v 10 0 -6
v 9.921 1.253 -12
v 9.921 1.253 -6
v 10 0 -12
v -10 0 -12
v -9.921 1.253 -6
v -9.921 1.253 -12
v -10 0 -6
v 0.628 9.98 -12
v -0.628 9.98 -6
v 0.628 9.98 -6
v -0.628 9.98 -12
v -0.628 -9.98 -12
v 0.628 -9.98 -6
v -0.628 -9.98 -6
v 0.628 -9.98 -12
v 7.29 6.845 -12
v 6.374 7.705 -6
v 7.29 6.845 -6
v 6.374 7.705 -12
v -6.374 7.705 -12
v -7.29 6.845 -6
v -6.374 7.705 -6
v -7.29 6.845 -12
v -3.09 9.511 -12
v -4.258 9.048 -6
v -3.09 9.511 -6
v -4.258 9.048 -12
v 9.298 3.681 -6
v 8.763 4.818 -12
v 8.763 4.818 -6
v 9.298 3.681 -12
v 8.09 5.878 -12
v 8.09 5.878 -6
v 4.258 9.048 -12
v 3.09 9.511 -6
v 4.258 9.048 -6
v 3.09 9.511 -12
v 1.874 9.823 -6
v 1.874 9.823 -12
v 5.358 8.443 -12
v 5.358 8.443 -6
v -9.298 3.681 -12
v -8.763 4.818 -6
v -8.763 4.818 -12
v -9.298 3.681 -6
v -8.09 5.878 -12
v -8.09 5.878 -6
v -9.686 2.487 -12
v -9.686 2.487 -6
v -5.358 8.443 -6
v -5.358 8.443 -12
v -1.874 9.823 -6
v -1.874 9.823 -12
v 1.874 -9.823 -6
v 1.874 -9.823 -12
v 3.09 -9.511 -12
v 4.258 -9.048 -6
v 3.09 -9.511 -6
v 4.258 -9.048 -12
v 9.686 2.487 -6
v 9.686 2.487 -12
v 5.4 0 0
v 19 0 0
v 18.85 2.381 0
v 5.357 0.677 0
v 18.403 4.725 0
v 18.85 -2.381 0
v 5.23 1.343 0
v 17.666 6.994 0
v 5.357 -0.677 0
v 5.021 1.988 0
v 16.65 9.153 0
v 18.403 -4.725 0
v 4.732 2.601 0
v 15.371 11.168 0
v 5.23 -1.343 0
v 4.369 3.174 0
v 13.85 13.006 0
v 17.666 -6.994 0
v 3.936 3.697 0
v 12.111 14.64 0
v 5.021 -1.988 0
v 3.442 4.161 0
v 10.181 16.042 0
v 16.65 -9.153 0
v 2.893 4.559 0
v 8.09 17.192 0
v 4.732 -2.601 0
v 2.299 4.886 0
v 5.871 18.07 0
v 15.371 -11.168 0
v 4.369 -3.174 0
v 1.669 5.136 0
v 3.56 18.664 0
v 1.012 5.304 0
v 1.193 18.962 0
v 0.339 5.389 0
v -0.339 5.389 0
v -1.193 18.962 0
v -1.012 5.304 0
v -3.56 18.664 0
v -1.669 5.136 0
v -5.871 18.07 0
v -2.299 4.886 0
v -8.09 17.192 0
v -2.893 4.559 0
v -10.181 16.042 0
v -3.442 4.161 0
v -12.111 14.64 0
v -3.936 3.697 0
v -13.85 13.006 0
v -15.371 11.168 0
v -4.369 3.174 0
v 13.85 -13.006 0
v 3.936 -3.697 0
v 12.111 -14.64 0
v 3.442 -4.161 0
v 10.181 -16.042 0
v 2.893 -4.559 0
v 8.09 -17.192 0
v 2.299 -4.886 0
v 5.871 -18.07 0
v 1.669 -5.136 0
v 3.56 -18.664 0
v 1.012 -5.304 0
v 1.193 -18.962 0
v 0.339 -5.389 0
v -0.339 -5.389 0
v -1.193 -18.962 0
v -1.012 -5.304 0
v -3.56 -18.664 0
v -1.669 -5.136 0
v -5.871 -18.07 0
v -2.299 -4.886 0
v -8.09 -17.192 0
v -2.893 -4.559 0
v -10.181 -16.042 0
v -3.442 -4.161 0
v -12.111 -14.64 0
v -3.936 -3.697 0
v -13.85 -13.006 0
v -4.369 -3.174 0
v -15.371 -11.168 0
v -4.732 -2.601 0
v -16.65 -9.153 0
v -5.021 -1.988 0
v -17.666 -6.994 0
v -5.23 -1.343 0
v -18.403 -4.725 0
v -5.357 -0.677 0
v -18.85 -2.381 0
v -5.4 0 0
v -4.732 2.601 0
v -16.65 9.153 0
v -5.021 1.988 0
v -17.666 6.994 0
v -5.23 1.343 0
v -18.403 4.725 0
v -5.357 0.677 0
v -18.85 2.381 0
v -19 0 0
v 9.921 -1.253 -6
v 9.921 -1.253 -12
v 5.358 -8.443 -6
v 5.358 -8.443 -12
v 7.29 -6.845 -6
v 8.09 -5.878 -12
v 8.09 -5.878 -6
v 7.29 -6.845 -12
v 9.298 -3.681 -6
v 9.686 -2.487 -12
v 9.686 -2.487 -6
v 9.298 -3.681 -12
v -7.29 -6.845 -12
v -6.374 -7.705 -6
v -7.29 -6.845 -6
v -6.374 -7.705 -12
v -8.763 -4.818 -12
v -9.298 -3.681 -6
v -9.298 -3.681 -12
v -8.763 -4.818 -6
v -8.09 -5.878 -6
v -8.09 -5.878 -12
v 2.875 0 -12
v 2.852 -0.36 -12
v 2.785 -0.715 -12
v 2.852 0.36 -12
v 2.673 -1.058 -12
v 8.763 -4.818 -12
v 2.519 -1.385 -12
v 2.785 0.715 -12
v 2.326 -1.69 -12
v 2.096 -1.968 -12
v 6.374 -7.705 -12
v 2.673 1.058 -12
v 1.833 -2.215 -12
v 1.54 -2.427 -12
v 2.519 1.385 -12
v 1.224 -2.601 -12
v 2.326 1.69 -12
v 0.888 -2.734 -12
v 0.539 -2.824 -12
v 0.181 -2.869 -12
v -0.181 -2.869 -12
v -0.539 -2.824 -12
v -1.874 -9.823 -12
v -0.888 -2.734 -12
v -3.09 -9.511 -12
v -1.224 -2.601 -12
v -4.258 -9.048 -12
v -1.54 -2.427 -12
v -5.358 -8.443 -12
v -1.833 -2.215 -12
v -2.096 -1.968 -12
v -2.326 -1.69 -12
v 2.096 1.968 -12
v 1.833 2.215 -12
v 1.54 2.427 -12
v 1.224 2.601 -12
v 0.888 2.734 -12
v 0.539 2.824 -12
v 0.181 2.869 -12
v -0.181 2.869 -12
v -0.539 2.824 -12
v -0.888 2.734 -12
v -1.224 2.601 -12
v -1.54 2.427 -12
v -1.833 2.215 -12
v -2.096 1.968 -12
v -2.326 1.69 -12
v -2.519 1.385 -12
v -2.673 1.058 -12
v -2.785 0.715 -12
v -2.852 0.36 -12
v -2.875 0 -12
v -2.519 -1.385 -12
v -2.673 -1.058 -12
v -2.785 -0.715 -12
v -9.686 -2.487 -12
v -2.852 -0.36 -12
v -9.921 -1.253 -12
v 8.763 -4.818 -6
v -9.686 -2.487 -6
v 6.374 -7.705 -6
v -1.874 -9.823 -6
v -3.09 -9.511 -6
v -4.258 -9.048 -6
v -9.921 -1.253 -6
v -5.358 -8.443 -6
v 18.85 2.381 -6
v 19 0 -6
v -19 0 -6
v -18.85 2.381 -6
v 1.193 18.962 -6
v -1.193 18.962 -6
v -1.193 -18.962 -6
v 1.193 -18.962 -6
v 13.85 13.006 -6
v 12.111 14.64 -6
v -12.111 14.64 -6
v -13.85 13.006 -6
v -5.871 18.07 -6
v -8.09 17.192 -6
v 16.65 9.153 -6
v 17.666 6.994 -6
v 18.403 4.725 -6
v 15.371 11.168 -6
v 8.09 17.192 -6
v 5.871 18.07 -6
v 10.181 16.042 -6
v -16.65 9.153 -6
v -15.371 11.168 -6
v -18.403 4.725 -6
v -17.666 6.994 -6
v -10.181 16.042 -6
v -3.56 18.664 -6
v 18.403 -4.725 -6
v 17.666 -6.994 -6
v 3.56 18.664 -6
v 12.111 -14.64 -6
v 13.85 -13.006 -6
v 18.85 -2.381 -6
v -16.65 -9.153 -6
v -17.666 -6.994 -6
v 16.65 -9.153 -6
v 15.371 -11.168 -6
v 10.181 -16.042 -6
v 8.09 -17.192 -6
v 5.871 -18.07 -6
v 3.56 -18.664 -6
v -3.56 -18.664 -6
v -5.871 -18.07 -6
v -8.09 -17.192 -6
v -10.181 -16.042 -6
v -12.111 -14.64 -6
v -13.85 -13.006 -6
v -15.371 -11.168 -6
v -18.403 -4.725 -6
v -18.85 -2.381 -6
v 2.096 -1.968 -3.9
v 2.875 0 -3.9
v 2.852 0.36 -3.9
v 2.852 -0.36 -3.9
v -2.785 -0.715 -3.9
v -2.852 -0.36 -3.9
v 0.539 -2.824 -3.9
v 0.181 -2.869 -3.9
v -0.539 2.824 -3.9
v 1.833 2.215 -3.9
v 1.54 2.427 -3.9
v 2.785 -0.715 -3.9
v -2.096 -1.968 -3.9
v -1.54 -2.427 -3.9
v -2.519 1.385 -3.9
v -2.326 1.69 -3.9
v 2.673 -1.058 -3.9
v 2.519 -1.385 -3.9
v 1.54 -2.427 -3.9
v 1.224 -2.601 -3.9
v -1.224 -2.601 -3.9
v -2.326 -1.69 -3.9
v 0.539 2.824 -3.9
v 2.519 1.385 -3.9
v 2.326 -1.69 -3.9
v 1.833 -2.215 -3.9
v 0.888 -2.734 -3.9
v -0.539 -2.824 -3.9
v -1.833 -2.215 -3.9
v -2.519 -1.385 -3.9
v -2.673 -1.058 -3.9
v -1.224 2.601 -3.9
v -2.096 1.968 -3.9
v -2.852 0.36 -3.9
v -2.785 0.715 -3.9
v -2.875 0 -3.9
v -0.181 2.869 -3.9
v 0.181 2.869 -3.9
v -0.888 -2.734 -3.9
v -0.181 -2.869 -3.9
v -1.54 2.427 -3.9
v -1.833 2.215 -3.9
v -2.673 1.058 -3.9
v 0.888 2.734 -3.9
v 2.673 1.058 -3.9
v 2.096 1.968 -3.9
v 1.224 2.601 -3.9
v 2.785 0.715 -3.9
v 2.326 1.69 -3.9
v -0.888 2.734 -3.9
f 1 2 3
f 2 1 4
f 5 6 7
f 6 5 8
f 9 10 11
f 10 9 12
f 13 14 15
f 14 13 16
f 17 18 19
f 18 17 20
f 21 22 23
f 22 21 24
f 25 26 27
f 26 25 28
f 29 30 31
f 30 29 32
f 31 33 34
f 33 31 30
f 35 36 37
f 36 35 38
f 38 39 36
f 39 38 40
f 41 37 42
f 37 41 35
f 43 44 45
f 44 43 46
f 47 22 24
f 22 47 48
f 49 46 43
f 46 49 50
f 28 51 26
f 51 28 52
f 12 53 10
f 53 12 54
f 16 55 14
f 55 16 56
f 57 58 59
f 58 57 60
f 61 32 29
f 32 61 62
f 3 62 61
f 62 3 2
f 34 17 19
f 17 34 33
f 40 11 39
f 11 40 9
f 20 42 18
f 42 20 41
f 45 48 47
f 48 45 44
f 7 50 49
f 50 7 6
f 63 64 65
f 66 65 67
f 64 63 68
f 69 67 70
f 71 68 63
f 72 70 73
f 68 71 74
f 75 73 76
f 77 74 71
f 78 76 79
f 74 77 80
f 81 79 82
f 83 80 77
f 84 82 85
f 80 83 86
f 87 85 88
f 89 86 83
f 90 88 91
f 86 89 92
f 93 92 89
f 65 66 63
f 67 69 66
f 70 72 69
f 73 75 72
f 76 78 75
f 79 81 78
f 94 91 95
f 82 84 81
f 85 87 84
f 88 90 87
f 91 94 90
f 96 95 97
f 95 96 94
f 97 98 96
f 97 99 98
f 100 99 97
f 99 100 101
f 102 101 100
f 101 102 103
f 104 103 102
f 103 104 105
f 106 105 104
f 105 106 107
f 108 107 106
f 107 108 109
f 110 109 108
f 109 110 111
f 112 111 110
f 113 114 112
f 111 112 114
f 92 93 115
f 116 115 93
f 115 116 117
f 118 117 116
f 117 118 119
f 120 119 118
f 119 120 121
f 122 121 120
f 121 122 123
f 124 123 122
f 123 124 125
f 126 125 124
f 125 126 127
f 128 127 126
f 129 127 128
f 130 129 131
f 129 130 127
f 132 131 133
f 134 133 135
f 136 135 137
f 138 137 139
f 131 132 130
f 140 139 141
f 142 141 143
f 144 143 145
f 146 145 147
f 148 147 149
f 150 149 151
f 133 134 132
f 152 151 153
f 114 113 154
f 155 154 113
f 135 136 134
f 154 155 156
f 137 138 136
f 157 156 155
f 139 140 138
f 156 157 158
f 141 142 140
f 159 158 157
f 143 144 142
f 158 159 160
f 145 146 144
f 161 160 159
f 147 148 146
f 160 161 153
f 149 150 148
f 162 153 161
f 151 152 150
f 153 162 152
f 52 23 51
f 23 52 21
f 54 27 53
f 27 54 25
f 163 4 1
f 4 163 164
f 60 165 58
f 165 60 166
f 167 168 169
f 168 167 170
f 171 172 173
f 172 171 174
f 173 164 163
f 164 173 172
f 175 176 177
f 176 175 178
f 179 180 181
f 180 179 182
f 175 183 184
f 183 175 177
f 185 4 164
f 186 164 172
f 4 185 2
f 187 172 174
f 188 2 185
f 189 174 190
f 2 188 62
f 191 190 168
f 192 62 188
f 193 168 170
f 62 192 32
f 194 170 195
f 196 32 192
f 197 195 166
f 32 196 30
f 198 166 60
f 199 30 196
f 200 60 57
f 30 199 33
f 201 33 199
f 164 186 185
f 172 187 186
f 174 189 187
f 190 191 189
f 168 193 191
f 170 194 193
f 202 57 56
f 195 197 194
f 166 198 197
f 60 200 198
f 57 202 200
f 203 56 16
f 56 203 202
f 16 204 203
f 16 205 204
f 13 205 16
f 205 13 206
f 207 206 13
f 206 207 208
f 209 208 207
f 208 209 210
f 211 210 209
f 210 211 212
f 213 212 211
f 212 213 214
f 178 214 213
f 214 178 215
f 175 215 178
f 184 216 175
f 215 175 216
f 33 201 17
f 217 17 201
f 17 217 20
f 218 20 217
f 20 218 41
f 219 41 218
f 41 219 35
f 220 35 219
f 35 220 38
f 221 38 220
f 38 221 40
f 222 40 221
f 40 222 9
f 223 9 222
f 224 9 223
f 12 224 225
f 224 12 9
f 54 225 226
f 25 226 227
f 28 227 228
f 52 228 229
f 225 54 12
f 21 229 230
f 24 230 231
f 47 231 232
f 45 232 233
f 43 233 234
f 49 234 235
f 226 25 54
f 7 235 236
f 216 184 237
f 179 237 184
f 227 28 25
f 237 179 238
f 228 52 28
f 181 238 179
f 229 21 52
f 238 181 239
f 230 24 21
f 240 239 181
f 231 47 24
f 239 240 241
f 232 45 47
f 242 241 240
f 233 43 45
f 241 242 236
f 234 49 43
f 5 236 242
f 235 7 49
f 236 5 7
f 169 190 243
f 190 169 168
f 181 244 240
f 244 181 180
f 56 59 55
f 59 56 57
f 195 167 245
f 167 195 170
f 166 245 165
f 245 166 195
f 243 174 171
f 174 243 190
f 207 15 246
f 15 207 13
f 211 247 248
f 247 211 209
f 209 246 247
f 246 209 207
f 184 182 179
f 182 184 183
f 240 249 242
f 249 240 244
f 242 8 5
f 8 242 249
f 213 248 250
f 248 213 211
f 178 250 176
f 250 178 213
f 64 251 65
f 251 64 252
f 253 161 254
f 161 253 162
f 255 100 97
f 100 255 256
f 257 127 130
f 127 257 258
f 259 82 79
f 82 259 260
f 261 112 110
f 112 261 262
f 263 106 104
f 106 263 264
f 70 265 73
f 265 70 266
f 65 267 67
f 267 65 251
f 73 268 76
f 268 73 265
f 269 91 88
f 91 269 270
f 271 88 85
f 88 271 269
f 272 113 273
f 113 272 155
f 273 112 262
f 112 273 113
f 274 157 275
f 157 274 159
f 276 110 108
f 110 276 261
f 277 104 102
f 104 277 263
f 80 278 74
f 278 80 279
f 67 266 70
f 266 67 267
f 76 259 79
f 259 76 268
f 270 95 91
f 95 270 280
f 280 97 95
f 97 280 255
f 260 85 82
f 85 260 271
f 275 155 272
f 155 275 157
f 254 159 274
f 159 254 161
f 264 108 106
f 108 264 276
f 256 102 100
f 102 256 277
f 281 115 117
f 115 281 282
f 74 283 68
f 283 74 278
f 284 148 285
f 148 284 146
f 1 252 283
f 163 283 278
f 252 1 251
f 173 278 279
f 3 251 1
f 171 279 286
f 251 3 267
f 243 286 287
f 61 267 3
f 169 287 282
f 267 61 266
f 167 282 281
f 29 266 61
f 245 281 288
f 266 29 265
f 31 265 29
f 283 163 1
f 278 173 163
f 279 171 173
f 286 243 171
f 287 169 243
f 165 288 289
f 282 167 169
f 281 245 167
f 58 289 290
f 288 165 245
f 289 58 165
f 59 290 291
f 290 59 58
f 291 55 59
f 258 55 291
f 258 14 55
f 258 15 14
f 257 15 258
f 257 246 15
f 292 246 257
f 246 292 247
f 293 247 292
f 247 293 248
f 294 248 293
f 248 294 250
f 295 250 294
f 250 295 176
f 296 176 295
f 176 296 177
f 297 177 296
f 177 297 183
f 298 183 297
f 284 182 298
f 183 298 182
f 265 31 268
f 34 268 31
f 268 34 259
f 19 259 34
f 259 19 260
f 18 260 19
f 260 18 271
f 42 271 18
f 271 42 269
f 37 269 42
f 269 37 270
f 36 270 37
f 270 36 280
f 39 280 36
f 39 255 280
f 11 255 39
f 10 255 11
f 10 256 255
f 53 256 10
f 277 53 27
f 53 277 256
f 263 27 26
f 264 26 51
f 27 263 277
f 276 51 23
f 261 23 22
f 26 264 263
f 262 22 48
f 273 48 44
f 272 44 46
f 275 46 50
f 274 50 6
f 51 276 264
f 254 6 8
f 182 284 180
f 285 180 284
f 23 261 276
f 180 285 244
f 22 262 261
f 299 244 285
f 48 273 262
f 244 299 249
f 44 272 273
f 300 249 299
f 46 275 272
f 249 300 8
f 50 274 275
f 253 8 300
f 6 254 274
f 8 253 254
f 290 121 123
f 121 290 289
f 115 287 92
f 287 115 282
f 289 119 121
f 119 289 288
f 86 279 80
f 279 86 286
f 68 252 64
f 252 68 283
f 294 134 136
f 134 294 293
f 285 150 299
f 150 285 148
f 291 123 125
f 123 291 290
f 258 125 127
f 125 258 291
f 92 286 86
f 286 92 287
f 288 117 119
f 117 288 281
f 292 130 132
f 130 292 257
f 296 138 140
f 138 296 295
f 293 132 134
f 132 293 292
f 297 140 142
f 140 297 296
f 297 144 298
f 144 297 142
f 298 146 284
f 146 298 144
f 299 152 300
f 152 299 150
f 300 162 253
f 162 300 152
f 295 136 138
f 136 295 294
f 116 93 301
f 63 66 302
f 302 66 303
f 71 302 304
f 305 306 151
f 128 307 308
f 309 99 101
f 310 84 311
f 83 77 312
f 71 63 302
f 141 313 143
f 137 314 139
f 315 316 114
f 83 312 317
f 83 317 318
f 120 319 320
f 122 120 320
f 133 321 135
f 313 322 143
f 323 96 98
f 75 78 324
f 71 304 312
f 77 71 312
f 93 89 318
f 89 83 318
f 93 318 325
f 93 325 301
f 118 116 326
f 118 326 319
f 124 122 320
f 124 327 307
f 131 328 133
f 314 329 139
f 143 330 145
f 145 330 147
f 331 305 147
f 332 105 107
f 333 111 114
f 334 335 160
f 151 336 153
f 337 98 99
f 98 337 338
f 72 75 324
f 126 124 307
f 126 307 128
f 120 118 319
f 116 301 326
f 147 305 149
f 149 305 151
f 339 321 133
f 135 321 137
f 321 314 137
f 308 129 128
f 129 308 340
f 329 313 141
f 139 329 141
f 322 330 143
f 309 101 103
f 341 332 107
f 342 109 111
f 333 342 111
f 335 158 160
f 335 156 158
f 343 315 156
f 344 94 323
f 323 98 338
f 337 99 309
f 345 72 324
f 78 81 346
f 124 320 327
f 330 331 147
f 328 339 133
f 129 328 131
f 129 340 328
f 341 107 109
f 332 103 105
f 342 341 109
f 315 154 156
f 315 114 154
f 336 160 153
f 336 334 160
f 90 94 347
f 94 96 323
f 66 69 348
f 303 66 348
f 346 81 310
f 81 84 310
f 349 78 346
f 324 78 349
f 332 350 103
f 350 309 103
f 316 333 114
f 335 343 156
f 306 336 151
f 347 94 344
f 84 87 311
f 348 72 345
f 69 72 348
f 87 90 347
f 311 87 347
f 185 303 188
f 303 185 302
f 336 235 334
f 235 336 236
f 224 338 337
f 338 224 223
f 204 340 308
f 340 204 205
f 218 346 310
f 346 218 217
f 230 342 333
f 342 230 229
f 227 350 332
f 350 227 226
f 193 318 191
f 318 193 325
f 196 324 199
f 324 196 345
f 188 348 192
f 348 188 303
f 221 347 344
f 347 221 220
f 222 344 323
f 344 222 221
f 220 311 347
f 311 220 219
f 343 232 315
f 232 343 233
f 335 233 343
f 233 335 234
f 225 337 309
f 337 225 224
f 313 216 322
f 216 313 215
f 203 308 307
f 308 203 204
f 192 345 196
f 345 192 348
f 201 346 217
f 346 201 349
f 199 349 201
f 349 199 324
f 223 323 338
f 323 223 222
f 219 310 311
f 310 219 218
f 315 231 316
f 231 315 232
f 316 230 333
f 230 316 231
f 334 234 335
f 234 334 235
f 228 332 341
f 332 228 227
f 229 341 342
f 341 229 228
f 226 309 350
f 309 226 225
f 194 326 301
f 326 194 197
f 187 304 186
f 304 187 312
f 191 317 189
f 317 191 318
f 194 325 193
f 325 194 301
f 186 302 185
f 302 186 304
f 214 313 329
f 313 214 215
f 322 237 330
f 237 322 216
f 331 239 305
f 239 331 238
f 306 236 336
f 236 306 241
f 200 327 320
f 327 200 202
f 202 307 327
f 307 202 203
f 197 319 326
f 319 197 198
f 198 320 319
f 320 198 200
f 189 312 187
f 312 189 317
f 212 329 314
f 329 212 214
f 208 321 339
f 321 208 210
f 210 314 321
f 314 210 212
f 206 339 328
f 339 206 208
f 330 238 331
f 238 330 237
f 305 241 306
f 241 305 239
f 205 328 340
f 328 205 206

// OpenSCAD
$fn = 50;


difference() {
	union() {
		translate(v = [0, 0, -12.0000000000]) {
			cylinder(h = 12, r = 10.0000000000);
		}
		translate(v = [0, 0, -6.0000000000]) {
			cylinder(h = 6, r = 19.0000000000);
		}
	}
	union() {
		translate(v = [0, 0, 0]) {
			rotate(a = [0, 0, 0]) {
				difference() {
					union() {
						#translate(v = [0, 0, -12.0000000000]) {
							cylinder(h = 12, r = 2.6000000000);
						}
						#translate(v = [0, 0, -3.9000000000]) {
							cylinder(h = 3.9000000000, r = 10.0000000000, r1 = 2.8750000000, r2 = 5.4000000000);
						}
						#translate(v = [0, 0, -12.0000000000]) {
							cylinder(h = 12, r = 2.8750000000);
						}
						#translate(v = [0, 0, -12.0000000000]) {
							cylinder(h = 12, r = 2.6000000000);
						}
					}
					union();
				}
			}
		}
	}
}
